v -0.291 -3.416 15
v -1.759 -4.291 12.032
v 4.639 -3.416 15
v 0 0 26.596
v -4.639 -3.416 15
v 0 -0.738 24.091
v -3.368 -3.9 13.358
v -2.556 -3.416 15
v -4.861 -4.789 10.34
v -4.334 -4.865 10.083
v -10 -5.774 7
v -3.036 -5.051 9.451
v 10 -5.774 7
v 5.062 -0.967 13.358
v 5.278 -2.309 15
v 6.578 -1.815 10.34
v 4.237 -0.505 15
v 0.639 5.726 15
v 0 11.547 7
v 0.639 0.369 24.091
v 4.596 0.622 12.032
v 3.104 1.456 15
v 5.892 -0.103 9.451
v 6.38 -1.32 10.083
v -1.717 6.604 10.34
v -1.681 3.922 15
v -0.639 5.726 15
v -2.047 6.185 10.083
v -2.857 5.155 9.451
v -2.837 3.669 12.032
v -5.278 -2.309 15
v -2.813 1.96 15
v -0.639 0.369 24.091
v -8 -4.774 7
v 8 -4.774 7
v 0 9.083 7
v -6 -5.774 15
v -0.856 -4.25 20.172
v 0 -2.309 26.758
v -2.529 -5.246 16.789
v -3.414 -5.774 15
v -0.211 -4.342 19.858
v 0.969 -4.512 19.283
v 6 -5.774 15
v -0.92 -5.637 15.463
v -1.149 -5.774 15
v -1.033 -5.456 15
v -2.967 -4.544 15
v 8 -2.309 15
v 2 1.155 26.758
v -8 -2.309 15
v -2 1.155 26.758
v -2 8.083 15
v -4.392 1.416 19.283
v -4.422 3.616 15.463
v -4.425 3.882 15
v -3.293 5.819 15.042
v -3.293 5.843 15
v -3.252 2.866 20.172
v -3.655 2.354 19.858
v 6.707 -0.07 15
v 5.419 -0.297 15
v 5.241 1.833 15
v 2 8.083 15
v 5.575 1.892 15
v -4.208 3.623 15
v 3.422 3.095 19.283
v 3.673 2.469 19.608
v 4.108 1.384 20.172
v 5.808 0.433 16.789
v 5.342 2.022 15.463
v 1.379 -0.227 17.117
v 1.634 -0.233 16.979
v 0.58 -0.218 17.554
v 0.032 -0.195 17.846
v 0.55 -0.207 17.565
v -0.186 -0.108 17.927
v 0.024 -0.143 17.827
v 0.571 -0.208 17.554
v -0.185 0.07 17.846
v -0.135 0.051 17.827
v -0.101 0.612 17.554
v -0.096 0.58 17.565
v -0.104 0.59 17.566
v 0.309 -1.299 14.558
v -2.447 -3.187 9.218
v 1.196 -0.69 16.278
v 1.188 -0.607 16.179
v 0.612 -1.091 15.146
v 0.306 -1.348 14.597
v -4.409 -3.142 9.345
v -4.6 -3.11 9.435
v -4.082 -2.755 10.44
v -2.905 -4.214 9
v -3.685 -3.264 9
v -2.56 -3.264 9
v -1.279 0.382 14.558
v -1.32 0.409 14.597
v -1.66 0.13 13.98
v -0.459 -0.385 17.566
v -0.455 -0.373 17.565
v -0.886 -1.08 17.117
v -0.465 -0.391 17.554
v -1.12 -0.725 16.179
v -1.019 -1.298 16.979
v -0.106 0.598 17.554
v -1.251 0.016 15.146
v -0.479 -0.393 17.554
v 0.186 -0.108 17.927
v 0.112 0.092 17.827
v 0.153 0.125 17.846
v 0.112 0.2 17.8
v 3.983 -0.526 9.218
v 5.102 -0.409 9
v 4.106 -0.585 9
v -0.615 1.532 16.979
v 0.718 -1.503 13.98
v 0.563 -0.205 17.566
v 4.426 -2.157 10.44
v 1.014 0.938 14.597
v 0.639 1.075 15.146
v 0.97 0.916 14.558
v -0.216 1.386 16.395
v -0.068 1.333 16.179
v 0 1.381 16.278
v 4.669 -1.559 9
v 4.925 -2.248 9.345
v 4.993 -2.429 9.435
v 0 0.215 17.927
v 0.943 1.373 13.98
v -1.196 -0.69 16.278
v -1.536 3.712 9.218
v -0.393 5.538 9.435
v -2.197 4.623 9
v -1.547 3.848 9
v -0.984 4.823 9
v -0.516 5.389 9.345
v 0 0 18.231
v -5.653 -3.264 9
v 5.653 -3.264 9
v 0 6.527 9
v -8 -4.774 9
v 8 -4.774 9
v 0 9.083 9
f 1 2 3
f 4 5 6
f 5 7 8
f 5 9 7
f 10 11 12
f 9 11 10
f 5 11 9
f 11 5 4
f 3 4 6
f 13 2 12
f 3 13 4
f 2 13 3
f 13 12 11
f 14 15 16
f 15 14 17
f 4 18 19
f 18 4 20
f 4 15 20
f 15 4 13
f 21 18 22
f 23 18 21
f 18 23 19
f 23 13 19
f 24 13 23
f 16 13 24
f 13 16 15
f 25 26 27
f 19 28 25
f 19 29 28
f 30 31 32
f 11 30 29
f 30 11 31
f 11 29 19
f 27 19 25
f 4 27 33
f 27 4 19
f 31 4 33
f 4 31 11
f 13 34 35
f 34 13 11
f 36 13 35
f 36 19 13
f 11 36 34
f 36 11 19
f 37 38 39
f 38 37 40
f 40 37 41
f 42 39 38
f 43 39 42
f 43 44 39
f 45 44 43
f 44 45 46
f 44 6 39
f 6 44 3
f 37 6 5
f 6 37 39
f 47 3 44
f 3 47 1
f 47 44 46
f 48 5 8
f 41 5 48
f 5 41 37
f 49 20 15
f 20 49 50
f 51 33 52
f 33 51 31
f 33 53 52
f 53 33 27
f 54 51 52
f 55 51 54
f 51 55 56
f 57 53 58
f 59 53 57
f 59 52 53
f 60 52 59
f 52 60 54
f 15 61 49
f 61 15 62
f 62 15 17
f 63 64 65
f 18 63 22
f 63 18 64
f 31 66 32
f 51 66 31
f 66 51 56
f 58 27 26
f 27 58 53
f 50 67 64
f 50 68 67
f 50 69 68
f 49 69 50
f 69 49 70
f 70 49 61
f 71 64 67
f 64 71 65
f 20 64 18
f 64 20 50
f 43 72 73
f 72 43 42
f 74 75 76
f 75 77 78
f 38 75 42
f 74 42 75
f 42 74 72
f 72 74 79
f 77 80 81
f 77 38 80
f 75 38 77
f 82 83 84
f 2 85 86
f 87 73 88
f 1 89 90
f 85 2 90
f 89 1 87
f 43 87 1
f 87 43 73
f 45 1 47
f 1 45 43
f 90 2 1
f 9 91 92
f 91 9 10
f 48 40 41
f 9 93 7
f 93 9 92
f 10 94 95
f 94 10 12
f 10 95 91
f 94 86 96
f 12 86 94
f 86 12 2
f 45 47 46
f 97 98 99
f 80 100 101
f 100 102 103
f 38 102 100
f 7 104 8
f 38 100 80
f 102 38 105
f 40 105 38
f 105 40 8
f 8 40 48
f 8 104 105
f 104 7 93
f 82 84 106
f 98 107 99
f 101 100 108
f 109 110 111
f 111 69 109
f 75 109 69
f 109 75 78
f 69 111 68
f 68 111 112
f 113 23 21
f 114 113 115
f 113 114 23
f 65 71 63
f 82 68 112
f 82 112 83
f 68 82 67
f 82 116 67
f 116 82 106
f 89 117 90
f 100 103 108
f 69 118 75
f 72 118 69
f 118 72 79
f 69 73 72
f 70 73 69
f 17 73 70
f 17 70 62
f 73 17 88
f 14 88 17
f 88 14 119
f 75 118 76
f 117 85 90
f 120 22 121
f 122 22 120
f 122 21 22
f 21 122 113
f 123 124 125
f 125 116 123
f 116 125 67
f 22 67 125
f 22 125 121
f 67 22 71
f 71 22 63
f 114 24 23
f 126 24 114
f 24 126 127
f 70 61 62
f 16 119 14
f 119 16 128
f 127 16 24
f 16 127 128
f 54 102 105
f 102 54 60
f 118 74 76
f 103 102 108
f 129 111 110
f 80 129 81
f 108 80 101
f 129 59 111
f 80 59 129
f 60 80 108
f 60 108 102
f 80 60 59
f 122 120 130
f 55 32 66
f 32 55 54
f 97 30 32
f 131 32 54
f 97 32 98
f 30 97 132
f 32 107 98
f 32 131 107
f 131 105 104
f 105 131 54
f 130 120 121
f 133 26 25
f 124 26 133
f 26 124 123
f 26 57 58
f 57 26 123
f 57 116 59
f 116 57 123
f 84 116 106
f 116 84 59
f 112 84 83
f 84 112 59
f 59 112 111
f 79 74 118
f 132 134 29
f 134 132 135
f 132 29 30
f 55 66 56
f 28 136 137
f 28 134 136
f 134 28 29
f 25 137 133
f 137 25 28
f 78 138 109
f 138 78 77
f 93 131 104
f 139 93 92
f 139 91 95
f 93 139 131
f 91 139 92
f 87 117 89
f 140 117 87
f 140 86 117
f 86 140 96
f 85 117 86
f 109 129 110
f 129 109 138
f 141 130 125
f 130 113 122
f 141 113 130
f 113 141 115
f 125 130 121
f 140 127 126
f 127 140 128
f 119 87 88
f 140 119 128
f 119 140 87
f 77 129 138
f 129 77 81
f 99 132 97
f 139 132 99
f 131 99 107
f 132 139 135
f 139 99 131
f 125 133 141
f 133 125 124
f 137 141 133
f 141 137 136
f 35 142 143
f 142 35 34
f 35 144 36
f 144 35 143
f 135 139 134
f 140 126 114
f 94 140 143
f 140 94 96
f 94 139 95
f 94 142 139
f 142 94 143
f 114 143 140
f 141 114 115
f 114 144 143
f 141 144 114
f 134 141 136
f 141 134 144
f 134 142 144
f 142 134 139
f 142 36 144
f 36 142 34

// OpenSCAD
// file: Common.scad
// Create a 3-d pyramid with a triangular base (thus 4 sides/faces).
module triangularPyramid(sideLength=20) {
    // For a 4-sided pyramid, make the maximum y coordinate such that
    // each side of the pyramid is length 20.
    triangularHeight = sideLength * sin(60);
    // Make the y coordinate for the top of the pyramid the center of
    // an equilateral triangle on the xy plane with sides of length 20.
    topY = sideLength * 0.5 * tan(30);
    // To find the topZ height, start from [-triangularHeight, 0]
    // (viewing yz plane, so x coordinates make no sense)
    // and move up (positive z direction) 20 units at an angle to intersect
    // at (-topY, topZ).
    // So (triangularHeight - topY)^2 + (topZ)^2 == 20^2
    // and we solve for topZ
    deltaYForTop = triangularHeight - topY;
    topZ = sqrt(sideLength * sideLength - deltaYForTop * deltaYForTop);

    polyhedron(
        // the three points at base
        points= [ [0,0,0],[sideLength,0,0],[sideLength * 0.5, triangularHeight, 0],
        // the apex point
                  [sideLength * 0.5, topY, topZ]  ],
        // each triangle side
        faces=[ [0,3,1],[1,3,2],[2,3,0],[0,1,2] ]);
}

module trianglularConnector(sideLength = 20) {
    height = sideLength * sin(60);

    polyhedron(
        points = [ [0,0,-5], [sideLength,0, -5], [sideLength * 0.5, height, -5],
                   [0,0,10], [sideLength,0, 10], [sideLength * 0.5, height, 10] ],
        faces = [ /* bottom */ [0, 1, 2], /* top */ [3, 5, 4],
            /* 3 sides: */ [0, 3, 4, 1], [1, 4, 5, 2], [2, 5, 3, 0] ]);
}

function polarToXYZ(thetaXY, thetaZ, radius) =
    [ radius * cos(thetaXY) * cos(thetaZ),
      radius * sin(thetaXY) * cos(thetaZ),
      radius * sin(thetaZ) ];

//
// Create a wedge that goes from the origin out to form a line between two
// points. The points are given in polar coordinates:
// * thetaXY is the rotation about the Z axis
// * thetaZ is the rotation up from the XY plane
//
module wedgeThing(theta1XY=0, theta1Z=0, theta2XY=0, theta2Z=45, deltaZ=0) {
    // Figure out an orthogonal vector to the line so that we can give it
    // some width:
    dXY = theta2XY - theta1XY;
    dZ = theta2Z - theta1Z;
    orthoVec = -0.15 * [dZ, dXY];

    translate([0,0,deltaZ])
    polyhedron(points=[[0,0,0],
            polarToXYZ(-0.15 * dZ + theta1XY, -0.15 * dXY + theta1Z, 30),
            polarToXYZ( 0.15 * dZ + theta1XY,  0.15 * dXY + theta1Z, 30),
            polarToXYZ( 0.15 * dZ + theta2XY,  0.15 * dXY + theta2Z, 30),
            polarToXYZ(-0.15 * dZ + theta2XY, -0.15 * dXY + theta2Z, 30)],
        faces = [[1,2,3,4], [0,2,1], [0,3,2], [0,4,3], [0,1,4]]);
}

module TopPiece() {
    // The top
    scale([1, 1, 1.2]) // is stretched out vertically a bit
    triangularPyramid();

    //
    // 3 little pyramids sticking out of the top:
    //
    littleScale = 0.6;

    // 1. is on the x axis
    translate([10 * (1 - littleScale), 0, 8])
    scale(littleScale)
    scale([1, 1, 1.2])
    triangularPyramid();

    mainTopY = 20 * 0.5 * tan(30);
    littleTopY = mainTopY * littleScale;
    topToTopDist = mainTopY - littleTopY;

    // 2. is rotated clockwise 120 degrees around the top-to-bottom line
    //    To do that rotation, translate the pyramid to be centered over 0,0,z
    //    then rotate, then untranslate.
    //    However, rotating a triangle by 120 degrees is the same triangle, so
    //    we will just move the thing a little off in the -x, +y direction :-)
    translate([-1 * topToTopDist * cos(30), topToTopDist * (1 + sin(30)), 0])
    translate([10 * (1 - littleScale), 0, 8])
    scale(littleScale)
    scale([1, 1, 1.2])
    triangularPyramid();

    // 3. is rotated counter-clockwise 120 degrees around the top-to-bottom line
    //    To do that rotation, translate the pyramid to be centered over 0,0,z
    //    then rotate, then untranslate.
    //    However, rotating a triangle by 120 degrees is the same triangle, so
    //    we will just move the thing a little off in the +x, +y direction :-)
    translate([topToTopDist * cos(30), topToTopDist * (1 + sin(30)), 0])
    translate([10 * (1 - littleScale), 0, 8])
    scale(littleScale)
    scale([1, 1, 1.2])
    triangularPyramid();
}

module BottomPiece() {
    // The bottom
    scale([1, 1, 1.5]) // is stretched out vertically a bit
    translate([20,0,0])
    rotate([0,180,0])
    triangularPyramid();
}
// main file
// Gorg Super-Chip, top piece
// (it's mostly marketing)

// Using this picture as a reference:
// http://dreamworks.wikia.com/wiki/Gorg_Super-Chip

use <Common.scad>;

color("DimGrey") {
      topHoleScale = 0.7;
      mainTopY = 20 * 0.5 * tan(30);
      littleTopY = mainTopY * topHoleScale;
      topToTopDist = mainTopY - littleTopY;
      echo(topToTopDist);

      difference() {
        translate([-10, -10 * tan(30), 7])
        TopPiece();

        translate([-10, -10 * tan(30), 7])
        translate([10 * (1 - topHoleScale), topToTopDist, -0.2])
        scale(topHoleScale)
        triangularPyramid();

        // Cut out space for this top piece to overlap
        // with the bottom piece for gluing together.
        // This hole has sideLength=16 and the connector
        // has sideLength=14 to allow some gap for glue.
        sideLength = 16;
        translate([-10, -10 * tan(30), 7])
        scale([1,1,0.4])
        translate([2,1,-5])
        trianglularConnector(sideLength=sideLength);

        // Cut out some wedges to create lines of green light :-)
        //wedgeThing(theta1XY=-115, theta1Z=20,
        //  theta2XY=-85, theta2Z=70, deltaZ=12);
        for (rotationAngle = [0,120,240]) {
        rotate([0,0,rotationAngle])
        translate([-2,-5,15])
        rotate([-30,20,-20])
        scale([0.2,1,1])
        translate([-5,-5,-5])
        cube(10);
        }
    }
}
